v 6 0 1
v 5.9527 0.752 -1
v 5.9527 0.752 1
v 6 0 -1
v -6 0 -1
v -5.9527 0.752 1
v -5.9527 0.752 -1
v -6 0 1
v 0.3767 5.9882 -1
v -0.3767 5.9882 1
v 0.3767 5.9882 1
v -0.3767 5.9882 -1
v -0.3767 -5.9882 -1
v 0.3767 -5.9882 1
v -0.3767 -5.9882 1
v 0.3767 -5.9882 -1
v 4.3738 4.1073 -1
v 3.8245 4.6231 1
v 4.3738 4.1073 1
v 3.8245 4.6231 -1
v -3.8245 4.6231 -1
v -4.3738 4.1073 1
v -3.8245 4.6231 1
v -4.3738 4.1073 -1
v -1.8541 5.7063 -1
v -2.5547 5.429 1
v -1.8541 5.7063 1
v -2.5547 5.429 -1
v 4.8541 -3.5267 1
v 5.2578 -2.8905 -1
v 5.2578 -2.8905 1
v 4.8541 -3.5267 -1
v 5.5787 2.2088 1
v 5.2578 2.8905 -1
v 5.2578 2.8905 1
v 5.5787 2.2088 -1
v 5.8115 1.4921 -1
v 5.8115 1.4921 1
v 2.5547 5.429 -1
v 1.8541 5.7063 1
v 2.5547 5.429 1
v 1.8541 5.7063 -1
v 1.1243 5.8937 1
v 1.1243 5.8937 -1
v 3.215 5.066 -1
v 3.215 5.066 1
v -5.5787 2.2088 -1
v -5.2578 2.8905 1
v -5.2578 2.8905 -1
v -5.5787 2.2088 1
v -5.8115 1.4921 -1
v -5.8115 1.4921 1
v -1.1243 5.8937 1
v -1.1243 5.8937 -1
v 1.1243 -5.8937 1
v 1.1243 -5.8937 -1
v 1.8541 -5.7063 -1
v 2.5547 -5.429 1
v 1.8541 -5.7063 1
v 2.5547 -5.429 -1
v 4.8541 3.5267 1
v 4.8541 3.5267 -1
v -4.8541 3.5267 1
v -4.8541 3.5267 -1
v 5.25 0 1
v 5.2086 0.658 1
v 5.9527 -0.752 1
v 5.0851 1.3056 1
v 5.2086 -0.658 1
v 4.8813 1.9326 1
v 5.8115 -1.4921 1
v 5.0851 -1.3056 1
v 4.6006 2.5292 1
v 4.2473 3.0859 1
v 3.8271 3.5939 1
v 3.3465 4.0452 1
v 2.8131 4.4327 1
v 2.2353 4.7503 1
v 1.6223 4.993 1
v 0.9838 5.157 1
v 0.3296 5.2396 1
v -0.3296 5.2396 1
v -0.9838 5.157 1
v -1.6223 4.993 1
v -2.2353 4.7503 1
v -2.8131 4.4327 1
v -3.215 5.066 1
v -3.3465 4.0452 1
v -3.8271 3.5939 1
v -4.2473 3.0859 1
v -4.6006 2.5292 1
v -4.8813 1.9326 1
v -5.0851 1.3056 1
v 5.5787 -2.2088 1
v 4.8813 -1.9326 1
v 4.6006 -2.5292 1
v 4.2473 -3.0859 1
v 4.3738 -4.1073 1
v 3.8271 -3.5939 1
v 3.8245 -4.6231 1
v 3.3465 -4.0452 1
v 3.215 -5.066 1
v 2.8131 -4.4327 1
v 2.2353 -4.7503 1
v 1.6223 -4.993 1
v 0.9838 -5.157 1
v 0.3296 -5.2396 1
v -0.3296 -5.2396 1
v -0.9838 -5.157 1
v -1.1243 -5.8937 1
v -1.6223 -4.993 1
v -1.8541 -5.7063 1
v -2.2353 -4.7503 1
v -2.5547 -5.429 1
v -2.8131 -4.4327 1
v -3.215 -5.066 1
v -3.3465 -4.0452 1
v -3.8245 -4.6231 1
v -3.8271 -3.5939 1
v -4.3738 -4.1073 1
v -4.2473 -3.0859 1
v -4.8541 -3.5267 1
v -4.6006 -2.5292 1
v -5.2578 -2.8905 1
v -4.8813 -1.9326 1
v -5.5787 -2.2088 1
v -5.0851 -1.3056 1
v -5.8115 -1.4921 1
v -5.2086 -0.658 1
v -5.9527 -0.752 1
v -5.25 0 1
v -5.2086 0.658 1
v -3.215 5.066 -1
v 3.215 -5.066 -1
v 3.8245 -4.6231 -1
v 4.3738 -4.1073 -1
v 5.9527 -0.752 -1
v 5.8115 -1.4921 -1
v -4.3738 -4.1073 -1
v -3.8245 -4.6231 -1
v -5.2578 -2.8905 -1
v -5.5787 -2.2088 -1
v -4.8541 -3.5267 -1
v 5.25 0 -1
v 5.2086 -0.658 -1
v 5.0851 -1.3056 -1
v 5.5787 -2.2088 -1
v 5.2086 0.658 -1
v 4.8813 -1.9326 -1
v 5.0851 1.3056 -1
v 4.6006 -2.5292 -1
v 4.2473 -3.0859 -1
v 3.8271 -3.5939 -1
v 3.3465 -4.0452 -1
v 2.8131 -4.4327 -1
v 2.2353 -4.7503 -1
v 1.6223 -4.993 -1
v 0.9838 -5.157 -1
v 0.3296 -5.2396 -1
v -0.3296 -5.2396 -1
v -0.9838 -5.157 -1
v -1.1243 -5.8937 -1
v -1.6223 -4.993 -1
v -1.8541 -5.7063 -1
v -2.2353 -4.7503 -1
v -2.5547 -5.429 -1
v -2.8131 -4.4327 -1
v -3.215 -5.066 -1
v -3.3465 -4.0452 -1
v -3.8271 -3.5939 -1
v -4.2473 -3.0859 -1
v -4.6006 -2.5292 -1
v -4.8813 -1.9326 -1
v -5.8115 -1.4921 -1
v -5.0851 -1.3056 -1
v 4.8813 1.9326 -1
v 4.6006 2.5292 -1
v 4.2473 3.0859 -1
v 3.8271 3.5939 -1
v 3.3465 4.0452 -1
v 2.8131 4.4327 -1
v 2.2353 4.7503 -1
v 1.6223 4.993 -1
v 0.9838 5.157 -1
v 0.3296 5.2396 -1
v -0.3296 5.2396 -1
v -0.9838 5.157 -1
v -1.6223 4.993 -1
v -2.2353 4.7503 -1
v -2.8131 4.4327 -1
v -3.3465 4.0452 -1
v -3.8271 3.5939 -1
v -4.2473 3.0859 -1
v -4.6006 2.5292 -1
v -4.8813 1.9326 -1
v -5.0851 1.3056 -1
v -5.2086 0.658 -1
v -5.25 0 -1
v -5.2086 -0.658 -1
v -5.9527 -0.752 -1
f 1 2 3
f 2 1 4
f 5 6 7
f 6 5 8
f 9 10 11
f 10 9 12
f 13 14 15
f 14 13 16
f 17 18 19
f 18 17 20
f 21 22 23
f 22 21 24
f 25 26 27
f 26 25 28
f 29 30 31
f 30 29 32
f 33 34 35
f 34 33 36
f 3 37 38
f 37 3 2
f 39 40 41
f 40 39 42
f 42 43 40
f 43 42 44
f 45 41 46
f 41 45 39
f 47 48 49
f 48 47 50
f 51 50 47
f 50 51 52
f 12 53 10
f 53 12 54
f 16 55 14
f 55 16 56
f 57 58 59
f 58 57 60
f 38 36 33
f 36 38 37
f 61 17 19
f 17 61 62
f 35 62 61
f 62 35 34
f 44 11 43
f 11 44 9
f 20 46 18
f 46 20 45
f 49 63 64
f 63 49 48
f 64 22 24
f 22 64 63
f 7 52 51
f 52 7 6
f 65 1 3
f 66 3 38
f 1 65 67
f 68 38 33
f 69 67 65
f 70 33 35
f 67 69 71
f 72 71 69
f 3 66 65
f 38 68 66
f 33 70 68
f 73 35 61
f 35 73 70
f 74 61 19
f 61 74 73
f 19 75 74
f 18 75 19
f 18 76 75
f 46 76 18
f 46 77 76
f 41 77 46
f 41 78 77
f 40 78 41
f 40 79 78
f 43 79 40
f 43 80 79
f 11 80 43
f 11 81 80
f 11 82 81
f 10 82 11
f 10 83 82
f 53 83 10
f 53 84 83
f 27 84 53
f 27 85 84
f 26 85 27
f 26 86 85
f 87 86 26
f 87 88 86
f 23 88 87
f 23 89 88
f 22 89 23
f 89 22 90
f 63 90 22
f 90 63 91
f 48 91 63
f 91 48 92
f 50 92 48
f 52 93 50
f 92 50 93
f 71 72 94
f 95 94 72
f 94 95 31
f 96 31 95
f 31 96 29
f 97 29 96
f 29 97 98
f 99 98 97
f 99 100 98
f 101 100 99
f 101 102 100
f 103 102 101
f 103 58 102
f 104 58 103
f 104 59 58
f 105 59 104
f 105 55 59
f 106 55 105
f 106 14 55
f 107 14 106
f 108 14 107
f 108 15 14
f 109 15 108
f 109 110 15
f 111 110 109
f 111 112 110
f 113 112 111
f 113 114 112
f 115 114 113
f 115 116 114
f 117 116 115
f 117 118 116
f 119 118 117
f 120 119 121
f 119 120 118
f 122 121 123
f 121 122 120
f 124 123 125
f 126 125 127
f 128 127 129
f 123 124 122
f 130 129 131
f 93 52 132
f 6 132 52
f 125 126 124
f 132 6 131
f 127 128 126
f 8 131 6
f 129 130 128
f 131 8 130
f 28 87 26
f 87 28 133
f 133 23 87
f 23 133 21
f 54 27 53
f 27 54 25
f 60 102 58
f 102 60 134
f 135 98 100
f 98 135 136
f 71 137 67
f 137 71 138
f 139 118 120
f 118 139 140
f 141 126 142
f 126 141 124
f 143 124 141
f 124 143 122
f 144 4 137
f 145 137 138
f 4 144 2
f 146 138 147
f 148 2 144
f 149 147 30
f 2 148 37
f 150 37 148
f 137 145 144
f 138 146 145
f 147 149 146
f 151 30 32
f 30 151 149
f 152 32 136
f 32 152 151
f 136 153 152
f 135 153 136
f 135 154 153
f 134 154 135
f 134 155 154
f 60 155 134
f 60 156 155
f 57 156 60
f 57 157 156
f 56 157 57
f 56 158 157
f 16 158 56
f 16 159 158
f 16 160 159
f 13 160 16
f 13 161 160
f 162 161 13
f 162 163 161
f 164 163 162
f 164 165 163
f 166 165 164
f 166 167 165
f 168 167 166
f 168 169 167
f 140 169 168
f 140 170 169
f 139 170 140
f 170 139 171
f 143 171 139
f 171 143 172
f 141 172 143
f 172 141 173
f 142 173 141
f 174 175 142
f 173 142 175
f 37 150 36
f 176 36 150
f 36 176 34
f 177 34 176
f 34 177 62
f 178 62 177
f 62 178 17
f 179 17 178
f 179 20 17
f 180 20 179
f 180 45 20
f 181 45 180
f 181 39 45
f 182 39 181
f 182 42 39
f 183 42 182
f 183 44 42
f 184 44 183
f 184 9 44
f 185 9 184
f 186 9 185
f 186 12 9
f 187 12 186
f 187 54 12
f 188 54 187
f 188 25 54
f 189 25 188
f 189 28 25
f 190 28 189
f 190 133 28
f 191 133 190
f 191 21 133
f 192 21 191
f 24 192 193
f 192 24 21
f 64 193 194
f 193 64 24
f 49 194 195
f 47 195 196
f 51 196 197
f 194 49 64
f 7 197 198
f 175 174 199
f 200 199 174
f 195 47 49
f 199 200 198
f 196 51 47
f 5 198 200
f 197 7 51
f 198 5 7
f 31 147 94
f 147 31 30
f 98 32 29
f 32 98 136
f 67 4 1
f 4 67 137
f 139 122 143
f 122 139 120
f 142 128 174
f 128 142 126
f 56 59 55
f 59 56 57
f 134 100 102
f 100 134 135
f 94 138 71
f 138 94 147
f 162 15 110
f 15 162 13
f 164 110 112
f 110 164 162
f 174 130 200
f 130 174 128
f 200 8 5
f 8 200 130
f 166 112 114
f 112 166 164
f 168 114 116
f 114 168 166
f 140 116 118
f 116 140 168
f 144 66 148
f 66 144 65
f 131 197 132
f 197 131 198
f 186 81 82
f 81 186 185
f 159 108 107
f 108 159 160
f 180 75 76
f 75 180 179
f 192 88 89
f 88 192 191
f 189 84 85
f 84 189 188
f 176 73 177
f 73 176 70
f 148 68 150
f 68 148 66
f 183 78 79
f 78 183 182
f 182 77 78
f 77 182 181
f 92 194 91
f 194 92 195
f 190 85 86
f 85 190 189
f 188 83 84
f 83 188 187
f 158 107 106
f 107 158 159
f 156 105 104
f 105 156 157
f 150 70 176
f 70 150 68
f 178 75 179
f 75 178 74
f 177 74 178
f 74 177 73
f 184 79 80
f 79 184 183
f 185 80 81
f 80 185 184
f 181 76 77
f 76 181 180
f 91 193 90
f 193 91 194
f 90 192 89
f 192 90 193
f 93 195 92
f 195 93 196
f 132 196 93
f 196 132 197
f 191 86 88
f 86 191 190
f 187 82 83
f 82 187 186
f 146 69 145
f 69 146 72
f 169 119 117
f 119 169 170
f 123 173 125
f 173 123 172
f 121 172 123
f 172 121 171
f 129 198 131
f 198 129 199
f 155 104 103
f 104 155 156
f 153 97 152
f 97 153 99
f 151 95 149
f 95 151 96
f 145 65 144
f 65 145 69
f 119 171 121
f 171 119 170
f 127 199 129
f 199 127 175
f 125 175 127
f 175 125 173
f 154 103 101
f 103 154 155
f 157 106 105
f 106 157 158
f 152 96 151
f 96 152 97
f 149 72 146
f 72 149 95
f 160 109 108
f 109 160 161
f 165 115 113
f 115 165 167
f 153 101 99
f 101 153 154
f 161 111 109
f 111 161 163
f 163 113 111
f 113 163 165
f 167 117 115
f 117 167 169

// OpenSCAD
$fn = 50;


difference() {
	union() {
		translate(v = [0, 0, -1.0000000000]) {
			cylinder(h = 2, r = 6.0000000000);
		}
	}
	union() {
		translate(v = [0, 0, -100.0000000000]) {
			cylinder(h = 200, r = 5.2500000000);
		}
	}
}
